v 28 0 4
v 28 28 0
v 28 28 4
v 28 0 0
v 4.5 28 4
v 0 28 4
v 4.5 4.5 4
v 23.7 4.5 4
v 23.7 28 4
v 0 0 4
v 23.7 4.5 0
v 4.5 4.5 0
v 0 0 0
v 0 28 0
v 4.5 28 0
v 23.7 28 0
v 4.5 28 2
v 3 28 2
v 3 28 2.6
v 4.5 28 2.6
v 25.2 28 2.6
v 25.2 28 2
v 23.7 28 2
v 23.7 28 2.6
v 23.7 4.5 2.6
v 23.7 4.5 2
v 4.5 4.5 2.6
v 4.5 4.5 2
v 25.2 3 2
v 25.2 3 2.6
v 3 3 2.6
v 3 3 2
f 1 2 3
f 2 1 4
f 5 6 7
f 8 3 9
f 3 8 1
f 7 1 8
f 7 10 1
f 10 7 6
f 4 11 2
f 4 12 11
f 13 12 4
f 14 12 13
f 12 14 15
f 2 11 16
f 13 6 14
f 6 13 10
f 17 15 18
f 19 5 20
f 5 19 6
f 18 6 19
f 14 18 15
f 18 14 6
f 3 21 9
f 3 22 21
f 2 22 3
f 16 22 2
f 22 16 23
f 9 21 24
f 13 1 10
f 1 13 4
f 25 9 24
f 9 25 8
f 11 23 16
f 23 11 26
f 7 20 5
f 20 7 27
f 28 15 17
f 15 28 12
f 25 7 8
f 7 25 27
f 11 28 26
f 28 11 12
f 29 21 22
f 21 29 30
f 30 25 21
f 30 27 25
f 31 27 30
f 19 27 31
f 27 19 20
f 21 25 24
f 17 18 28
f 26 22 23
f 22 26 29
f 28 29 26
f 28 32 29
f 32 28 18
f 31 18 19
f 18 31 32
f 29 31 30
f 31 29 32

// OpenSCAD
//cover slip dimensions
CSlipX = 22;
CSlipY = 22;
CSlipZ = 0.4;

//tolerance variable takes care of different printers having slight variations in precision
tolerance = 0.1;

//the cover slip will sit in a frame:
//the frame can have pre-defined border sizes:
borderX = 3;
borderY = 3;
borderZ = 2;

//model the cover slip
module cover_slip(){
cube([CSlipX+2*tolerance,CSlipY+2*tolerance+10,CSlipZ+2*tolerance]);
}//end module

difference(){
cube([CSlipX+2*borderX,CSlipY+2*borderY,2*borderZ]);
translate([borderX*1.5,borderY*1.5,-(CSlipZ+5)]){
cube([CSlipX-borderX+2*tolerance,CSlipY+5,CSlipZ+10]);

}//end translate

translate([borderX,borderY,borderZ]){
cover_slip();

}//end translate
}//end difference
